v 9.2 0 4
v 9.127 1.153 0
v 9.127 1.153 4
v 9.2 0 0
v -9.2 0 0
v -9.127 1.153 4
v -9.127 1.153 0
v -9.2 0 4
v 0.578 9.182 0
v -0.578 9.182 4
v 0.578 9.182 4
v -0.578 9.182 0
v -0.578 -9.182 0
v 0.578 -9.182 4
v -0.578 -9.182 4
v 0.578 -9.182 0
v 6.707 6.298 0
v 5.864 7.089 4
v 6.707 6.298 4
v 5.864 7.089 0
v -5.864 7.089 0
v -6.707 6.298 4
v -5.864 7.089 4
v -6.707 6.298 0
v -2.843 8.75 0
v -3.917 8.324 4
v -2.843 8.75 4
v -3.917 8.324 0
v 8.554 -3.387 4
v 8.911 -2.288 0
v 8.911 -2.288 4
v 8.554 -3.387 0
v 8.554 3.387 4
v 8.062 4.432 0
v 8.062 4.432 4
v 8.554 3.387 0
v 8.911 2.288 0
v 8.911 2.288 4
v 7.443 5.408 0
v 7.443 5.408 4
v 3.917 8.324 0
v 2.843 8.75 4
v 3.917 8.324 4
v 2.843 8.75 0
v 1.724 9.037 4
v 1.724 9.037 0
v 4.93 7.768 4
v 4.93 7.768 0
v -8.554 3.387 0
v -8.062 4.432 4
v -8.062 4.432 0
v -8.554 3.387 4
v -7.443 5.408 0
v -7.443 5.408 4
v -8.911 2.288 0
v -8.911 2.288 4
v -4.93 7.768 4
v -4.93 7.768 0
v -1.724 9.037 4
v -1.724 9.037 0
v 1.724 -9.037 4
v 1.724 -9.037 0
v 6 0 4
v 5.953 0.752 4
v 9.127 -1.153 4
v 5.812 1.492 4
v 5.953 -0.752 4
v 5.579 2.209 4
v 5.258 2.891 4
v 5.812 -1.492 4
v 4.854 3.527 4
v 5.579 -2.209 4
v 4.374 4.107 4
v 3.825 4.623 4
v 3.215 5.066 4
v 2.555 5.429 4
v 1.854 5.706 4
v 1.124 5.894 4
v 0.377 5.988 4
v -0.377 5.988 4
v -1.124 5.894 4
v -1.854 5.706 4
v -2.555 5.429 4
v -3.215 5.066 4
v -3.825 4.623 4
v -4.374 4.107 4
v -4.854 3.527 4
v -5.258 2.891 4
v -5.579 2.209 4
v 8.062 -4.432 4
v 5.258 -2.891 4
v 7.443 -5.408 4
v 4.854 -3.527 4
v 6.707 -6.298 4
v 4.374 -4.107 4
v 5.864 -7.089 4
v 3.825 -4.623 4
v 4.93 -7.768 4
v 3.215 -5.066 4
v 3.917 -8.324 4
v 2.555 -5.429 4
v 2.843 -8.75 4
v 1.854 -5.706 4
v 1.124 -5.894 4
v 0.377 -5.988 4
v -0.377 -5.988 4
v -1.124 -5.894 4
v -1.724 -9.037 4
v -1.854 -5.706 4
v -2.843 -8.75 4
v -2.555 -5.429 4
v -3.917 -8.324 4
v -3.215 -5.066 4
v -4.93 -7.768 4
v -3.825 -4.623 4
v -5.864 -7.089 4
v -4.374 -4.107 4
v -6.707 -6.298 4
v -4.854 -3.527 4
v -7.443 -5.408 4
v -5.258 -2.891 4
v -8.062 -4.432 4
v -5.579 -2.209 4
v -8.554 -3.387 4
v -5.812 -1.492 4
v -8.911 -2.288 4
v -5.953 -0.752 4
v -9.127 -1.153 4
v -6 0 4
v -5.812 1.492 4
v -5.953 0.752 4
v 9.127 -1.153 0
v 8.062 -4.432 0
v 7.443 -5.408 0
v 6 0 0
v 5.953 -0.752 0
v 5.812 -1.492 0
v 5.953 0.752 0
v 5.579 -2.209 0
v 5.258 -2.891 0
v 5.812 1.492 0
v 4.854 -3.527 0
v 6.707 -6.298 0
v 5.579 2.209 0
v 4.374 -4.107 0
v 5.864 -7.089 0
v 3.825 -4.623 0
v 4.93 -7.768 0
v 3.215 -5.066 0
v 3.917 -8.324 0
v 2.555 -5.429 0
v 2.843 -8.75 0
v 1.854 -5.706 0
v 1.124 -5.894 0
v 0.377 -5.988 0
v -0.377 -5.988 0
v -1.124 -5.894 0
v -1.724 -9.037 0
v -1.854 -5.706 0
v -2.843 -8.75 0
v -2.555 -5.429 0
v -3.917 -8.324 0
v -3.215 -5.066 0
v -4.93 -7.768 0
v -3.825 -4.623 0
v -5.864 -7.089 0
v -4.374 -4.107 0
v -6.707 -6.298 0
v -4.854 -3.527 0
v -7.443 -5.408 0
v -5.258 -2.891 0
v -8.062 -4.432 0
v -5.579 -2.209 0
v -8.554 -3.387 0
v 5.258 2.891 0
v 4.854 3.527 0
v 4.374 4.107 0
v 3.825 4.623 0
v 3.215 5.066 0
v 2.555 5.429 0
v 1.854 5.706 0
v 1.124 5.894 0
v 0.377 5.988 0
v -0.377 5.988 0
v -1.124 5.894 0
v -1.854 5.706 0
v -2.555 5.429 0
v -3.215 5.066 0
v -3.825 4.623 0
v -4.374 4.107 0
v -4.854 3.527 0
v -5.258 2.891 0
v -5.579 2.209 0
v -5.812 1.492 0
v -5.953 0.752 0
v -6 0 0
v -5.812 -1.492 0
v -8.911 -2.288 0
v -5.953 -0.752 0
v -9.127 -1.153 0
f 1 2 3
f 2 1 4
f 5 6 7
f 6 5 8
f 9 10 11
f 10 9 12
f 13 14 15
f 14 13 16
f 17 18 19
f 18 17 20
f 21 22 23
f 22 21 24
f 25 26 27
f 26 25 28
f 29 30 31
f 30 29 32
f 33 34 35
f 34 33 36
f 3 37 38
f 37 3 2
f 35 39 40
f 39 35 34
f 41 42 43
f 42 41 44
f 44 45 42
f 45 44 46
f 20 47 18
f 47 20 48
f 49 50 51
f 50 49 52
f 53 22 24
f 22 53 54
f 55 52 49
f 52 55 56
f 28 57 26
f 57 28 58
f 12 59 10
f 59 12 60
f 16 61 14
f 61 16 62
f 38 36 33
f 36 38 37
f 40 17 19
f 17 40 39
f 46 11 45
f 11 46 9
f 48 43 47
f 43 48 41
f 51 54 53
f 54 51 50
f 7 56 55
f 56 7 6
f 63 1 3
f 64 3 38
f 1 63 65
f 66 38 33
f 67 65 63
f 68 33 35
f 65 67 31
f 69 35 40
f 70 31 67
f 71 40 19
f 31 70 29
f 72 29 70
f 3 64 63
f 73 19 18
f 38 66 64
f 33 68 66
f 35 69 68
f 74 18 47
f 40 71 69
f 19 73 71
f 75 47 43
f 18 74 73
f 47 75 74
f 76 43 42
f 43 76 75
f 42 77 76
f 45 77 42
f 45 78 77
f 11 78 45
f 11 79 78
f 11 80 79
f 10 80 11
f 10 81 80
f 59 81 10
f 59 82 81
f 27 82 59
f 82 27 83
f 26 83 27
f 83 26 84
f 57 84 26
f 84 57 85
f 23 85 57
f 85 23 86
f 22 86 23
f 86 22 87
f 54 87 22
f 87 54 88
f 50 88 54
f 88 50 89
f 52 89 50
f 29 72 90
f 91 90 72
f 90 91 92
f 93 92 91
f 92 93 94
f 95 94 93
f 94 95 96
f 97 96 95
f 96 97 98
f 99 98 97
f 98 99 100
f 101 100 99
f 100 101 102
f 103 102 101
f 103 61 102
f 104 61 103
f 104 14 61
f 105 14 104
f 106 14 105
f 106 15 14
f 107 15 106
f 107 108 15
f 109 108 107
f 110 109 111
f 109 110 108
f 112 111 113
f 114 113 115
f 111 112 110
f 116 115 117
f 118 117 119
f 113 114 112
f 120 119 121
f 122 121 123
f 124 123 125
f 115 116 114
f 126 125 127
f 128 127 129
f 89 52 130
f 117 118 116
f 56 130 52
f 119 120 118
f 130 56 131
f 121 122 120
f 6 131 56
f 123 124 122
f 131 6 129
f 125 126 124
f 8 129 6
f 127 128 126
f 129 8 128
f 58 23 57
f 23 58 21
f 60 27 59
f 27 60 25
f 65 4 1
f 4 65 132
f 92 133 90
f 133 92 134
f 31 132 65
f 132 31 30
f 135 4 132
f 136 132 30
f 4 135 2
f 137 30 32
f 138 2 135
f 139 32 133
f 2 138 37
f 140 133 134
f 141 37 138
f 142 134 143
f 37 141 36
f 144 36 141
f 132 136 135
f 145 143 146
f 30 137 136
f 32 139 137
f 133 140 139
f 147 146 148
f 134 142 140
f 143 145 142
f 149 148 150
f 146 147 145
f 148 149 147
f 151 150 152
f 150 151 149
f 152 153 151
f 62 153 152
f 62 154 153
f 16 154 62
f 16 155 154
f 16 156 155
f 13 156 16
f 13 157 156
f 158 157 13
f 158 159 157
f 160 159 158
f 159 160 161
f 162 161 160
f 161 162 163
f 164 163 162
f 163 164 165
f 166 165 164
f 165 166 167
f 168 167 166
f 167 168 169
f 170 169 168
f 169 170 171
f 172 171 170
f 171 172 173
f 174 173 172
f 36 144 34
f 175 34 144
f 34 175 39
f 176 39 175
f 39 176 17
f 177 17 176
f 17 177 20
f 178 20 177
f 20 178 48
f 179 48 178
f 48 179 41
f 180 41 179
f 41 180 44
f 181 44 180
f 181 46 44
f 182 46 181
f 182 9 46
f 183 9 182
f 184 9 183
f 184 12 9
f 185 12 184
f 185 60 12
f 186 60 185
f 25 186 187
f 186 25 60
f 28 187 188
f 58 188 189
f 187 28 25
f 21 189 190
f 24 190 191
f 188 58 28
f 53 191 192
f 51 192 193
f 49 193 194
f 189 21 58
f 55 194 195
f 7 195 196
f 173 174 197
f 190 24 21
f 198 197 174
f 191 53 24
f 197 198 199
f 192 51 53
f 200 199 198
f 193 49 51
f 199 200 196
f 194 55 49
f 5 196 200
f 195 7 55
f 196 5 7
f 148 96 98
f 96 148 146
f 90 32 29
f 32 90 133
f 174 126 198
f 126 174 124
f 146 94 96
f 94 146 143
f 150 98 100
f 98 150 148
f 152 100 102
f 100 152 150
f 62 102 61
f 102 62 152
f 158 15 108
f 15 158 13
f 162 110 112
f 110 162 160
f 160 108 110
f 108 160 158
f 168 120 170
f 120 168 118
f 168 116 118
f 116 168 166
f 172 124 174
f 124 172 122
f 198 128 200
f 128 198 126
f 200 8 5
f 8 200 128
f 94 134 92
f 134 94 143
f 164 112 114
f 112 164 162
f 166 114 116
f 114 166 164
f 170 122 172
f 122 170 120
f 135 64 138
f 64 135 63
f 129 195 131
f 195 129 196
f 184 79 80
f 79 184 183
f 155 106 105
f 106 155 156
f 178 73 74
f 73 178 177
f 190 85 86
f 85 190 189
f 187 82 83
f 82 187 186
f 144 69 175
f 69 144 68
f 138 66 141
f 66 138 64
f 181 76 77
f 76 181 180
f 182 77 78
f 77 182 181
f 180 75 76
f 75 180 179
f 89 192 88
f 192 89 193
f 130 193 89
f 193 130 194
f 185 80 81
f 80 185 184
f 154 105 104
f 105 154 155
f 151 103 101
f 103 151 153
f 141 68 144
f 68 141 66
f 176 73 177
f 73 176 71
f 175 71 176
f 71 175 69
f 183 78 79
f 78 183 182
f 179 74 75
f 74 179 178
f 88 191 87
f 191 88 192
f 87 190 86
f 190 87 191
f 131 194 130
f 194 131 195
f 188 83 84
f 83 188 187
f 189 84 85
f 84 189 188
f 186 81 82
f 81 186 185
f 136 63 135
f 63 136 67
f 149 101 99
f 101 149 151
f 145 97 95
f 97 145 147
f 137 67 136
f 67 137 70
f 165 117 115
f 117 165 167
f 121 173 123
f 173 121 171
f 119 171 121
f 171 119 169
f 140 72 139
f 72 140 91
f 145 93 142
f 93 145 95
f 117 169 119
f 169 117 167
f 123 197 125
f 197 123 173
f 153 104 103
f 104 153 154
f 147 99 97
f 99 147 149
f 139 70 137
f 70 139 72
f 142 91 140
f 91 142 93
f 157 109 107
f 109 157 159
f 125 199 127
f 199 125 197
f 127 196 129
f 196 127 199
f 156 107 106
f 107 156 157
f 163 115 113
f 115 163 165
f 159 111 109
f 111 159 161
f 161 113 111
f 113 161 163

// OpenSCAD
$fn = 50;


difference() {
	union() {
		translate(v = [0, 0, 0]) {
			rotate(a = [0, 0, 0]) {
				cylinder(h = 4, r = 9.2000000000);
			}
		}
	}
	union() {
		translate(v = [0, 0, 0]) {
			rotate(a = [0, 0, 0]) {
				cylinder(h = 4, r = 6.0000000000);
			}
		}
	}
}
